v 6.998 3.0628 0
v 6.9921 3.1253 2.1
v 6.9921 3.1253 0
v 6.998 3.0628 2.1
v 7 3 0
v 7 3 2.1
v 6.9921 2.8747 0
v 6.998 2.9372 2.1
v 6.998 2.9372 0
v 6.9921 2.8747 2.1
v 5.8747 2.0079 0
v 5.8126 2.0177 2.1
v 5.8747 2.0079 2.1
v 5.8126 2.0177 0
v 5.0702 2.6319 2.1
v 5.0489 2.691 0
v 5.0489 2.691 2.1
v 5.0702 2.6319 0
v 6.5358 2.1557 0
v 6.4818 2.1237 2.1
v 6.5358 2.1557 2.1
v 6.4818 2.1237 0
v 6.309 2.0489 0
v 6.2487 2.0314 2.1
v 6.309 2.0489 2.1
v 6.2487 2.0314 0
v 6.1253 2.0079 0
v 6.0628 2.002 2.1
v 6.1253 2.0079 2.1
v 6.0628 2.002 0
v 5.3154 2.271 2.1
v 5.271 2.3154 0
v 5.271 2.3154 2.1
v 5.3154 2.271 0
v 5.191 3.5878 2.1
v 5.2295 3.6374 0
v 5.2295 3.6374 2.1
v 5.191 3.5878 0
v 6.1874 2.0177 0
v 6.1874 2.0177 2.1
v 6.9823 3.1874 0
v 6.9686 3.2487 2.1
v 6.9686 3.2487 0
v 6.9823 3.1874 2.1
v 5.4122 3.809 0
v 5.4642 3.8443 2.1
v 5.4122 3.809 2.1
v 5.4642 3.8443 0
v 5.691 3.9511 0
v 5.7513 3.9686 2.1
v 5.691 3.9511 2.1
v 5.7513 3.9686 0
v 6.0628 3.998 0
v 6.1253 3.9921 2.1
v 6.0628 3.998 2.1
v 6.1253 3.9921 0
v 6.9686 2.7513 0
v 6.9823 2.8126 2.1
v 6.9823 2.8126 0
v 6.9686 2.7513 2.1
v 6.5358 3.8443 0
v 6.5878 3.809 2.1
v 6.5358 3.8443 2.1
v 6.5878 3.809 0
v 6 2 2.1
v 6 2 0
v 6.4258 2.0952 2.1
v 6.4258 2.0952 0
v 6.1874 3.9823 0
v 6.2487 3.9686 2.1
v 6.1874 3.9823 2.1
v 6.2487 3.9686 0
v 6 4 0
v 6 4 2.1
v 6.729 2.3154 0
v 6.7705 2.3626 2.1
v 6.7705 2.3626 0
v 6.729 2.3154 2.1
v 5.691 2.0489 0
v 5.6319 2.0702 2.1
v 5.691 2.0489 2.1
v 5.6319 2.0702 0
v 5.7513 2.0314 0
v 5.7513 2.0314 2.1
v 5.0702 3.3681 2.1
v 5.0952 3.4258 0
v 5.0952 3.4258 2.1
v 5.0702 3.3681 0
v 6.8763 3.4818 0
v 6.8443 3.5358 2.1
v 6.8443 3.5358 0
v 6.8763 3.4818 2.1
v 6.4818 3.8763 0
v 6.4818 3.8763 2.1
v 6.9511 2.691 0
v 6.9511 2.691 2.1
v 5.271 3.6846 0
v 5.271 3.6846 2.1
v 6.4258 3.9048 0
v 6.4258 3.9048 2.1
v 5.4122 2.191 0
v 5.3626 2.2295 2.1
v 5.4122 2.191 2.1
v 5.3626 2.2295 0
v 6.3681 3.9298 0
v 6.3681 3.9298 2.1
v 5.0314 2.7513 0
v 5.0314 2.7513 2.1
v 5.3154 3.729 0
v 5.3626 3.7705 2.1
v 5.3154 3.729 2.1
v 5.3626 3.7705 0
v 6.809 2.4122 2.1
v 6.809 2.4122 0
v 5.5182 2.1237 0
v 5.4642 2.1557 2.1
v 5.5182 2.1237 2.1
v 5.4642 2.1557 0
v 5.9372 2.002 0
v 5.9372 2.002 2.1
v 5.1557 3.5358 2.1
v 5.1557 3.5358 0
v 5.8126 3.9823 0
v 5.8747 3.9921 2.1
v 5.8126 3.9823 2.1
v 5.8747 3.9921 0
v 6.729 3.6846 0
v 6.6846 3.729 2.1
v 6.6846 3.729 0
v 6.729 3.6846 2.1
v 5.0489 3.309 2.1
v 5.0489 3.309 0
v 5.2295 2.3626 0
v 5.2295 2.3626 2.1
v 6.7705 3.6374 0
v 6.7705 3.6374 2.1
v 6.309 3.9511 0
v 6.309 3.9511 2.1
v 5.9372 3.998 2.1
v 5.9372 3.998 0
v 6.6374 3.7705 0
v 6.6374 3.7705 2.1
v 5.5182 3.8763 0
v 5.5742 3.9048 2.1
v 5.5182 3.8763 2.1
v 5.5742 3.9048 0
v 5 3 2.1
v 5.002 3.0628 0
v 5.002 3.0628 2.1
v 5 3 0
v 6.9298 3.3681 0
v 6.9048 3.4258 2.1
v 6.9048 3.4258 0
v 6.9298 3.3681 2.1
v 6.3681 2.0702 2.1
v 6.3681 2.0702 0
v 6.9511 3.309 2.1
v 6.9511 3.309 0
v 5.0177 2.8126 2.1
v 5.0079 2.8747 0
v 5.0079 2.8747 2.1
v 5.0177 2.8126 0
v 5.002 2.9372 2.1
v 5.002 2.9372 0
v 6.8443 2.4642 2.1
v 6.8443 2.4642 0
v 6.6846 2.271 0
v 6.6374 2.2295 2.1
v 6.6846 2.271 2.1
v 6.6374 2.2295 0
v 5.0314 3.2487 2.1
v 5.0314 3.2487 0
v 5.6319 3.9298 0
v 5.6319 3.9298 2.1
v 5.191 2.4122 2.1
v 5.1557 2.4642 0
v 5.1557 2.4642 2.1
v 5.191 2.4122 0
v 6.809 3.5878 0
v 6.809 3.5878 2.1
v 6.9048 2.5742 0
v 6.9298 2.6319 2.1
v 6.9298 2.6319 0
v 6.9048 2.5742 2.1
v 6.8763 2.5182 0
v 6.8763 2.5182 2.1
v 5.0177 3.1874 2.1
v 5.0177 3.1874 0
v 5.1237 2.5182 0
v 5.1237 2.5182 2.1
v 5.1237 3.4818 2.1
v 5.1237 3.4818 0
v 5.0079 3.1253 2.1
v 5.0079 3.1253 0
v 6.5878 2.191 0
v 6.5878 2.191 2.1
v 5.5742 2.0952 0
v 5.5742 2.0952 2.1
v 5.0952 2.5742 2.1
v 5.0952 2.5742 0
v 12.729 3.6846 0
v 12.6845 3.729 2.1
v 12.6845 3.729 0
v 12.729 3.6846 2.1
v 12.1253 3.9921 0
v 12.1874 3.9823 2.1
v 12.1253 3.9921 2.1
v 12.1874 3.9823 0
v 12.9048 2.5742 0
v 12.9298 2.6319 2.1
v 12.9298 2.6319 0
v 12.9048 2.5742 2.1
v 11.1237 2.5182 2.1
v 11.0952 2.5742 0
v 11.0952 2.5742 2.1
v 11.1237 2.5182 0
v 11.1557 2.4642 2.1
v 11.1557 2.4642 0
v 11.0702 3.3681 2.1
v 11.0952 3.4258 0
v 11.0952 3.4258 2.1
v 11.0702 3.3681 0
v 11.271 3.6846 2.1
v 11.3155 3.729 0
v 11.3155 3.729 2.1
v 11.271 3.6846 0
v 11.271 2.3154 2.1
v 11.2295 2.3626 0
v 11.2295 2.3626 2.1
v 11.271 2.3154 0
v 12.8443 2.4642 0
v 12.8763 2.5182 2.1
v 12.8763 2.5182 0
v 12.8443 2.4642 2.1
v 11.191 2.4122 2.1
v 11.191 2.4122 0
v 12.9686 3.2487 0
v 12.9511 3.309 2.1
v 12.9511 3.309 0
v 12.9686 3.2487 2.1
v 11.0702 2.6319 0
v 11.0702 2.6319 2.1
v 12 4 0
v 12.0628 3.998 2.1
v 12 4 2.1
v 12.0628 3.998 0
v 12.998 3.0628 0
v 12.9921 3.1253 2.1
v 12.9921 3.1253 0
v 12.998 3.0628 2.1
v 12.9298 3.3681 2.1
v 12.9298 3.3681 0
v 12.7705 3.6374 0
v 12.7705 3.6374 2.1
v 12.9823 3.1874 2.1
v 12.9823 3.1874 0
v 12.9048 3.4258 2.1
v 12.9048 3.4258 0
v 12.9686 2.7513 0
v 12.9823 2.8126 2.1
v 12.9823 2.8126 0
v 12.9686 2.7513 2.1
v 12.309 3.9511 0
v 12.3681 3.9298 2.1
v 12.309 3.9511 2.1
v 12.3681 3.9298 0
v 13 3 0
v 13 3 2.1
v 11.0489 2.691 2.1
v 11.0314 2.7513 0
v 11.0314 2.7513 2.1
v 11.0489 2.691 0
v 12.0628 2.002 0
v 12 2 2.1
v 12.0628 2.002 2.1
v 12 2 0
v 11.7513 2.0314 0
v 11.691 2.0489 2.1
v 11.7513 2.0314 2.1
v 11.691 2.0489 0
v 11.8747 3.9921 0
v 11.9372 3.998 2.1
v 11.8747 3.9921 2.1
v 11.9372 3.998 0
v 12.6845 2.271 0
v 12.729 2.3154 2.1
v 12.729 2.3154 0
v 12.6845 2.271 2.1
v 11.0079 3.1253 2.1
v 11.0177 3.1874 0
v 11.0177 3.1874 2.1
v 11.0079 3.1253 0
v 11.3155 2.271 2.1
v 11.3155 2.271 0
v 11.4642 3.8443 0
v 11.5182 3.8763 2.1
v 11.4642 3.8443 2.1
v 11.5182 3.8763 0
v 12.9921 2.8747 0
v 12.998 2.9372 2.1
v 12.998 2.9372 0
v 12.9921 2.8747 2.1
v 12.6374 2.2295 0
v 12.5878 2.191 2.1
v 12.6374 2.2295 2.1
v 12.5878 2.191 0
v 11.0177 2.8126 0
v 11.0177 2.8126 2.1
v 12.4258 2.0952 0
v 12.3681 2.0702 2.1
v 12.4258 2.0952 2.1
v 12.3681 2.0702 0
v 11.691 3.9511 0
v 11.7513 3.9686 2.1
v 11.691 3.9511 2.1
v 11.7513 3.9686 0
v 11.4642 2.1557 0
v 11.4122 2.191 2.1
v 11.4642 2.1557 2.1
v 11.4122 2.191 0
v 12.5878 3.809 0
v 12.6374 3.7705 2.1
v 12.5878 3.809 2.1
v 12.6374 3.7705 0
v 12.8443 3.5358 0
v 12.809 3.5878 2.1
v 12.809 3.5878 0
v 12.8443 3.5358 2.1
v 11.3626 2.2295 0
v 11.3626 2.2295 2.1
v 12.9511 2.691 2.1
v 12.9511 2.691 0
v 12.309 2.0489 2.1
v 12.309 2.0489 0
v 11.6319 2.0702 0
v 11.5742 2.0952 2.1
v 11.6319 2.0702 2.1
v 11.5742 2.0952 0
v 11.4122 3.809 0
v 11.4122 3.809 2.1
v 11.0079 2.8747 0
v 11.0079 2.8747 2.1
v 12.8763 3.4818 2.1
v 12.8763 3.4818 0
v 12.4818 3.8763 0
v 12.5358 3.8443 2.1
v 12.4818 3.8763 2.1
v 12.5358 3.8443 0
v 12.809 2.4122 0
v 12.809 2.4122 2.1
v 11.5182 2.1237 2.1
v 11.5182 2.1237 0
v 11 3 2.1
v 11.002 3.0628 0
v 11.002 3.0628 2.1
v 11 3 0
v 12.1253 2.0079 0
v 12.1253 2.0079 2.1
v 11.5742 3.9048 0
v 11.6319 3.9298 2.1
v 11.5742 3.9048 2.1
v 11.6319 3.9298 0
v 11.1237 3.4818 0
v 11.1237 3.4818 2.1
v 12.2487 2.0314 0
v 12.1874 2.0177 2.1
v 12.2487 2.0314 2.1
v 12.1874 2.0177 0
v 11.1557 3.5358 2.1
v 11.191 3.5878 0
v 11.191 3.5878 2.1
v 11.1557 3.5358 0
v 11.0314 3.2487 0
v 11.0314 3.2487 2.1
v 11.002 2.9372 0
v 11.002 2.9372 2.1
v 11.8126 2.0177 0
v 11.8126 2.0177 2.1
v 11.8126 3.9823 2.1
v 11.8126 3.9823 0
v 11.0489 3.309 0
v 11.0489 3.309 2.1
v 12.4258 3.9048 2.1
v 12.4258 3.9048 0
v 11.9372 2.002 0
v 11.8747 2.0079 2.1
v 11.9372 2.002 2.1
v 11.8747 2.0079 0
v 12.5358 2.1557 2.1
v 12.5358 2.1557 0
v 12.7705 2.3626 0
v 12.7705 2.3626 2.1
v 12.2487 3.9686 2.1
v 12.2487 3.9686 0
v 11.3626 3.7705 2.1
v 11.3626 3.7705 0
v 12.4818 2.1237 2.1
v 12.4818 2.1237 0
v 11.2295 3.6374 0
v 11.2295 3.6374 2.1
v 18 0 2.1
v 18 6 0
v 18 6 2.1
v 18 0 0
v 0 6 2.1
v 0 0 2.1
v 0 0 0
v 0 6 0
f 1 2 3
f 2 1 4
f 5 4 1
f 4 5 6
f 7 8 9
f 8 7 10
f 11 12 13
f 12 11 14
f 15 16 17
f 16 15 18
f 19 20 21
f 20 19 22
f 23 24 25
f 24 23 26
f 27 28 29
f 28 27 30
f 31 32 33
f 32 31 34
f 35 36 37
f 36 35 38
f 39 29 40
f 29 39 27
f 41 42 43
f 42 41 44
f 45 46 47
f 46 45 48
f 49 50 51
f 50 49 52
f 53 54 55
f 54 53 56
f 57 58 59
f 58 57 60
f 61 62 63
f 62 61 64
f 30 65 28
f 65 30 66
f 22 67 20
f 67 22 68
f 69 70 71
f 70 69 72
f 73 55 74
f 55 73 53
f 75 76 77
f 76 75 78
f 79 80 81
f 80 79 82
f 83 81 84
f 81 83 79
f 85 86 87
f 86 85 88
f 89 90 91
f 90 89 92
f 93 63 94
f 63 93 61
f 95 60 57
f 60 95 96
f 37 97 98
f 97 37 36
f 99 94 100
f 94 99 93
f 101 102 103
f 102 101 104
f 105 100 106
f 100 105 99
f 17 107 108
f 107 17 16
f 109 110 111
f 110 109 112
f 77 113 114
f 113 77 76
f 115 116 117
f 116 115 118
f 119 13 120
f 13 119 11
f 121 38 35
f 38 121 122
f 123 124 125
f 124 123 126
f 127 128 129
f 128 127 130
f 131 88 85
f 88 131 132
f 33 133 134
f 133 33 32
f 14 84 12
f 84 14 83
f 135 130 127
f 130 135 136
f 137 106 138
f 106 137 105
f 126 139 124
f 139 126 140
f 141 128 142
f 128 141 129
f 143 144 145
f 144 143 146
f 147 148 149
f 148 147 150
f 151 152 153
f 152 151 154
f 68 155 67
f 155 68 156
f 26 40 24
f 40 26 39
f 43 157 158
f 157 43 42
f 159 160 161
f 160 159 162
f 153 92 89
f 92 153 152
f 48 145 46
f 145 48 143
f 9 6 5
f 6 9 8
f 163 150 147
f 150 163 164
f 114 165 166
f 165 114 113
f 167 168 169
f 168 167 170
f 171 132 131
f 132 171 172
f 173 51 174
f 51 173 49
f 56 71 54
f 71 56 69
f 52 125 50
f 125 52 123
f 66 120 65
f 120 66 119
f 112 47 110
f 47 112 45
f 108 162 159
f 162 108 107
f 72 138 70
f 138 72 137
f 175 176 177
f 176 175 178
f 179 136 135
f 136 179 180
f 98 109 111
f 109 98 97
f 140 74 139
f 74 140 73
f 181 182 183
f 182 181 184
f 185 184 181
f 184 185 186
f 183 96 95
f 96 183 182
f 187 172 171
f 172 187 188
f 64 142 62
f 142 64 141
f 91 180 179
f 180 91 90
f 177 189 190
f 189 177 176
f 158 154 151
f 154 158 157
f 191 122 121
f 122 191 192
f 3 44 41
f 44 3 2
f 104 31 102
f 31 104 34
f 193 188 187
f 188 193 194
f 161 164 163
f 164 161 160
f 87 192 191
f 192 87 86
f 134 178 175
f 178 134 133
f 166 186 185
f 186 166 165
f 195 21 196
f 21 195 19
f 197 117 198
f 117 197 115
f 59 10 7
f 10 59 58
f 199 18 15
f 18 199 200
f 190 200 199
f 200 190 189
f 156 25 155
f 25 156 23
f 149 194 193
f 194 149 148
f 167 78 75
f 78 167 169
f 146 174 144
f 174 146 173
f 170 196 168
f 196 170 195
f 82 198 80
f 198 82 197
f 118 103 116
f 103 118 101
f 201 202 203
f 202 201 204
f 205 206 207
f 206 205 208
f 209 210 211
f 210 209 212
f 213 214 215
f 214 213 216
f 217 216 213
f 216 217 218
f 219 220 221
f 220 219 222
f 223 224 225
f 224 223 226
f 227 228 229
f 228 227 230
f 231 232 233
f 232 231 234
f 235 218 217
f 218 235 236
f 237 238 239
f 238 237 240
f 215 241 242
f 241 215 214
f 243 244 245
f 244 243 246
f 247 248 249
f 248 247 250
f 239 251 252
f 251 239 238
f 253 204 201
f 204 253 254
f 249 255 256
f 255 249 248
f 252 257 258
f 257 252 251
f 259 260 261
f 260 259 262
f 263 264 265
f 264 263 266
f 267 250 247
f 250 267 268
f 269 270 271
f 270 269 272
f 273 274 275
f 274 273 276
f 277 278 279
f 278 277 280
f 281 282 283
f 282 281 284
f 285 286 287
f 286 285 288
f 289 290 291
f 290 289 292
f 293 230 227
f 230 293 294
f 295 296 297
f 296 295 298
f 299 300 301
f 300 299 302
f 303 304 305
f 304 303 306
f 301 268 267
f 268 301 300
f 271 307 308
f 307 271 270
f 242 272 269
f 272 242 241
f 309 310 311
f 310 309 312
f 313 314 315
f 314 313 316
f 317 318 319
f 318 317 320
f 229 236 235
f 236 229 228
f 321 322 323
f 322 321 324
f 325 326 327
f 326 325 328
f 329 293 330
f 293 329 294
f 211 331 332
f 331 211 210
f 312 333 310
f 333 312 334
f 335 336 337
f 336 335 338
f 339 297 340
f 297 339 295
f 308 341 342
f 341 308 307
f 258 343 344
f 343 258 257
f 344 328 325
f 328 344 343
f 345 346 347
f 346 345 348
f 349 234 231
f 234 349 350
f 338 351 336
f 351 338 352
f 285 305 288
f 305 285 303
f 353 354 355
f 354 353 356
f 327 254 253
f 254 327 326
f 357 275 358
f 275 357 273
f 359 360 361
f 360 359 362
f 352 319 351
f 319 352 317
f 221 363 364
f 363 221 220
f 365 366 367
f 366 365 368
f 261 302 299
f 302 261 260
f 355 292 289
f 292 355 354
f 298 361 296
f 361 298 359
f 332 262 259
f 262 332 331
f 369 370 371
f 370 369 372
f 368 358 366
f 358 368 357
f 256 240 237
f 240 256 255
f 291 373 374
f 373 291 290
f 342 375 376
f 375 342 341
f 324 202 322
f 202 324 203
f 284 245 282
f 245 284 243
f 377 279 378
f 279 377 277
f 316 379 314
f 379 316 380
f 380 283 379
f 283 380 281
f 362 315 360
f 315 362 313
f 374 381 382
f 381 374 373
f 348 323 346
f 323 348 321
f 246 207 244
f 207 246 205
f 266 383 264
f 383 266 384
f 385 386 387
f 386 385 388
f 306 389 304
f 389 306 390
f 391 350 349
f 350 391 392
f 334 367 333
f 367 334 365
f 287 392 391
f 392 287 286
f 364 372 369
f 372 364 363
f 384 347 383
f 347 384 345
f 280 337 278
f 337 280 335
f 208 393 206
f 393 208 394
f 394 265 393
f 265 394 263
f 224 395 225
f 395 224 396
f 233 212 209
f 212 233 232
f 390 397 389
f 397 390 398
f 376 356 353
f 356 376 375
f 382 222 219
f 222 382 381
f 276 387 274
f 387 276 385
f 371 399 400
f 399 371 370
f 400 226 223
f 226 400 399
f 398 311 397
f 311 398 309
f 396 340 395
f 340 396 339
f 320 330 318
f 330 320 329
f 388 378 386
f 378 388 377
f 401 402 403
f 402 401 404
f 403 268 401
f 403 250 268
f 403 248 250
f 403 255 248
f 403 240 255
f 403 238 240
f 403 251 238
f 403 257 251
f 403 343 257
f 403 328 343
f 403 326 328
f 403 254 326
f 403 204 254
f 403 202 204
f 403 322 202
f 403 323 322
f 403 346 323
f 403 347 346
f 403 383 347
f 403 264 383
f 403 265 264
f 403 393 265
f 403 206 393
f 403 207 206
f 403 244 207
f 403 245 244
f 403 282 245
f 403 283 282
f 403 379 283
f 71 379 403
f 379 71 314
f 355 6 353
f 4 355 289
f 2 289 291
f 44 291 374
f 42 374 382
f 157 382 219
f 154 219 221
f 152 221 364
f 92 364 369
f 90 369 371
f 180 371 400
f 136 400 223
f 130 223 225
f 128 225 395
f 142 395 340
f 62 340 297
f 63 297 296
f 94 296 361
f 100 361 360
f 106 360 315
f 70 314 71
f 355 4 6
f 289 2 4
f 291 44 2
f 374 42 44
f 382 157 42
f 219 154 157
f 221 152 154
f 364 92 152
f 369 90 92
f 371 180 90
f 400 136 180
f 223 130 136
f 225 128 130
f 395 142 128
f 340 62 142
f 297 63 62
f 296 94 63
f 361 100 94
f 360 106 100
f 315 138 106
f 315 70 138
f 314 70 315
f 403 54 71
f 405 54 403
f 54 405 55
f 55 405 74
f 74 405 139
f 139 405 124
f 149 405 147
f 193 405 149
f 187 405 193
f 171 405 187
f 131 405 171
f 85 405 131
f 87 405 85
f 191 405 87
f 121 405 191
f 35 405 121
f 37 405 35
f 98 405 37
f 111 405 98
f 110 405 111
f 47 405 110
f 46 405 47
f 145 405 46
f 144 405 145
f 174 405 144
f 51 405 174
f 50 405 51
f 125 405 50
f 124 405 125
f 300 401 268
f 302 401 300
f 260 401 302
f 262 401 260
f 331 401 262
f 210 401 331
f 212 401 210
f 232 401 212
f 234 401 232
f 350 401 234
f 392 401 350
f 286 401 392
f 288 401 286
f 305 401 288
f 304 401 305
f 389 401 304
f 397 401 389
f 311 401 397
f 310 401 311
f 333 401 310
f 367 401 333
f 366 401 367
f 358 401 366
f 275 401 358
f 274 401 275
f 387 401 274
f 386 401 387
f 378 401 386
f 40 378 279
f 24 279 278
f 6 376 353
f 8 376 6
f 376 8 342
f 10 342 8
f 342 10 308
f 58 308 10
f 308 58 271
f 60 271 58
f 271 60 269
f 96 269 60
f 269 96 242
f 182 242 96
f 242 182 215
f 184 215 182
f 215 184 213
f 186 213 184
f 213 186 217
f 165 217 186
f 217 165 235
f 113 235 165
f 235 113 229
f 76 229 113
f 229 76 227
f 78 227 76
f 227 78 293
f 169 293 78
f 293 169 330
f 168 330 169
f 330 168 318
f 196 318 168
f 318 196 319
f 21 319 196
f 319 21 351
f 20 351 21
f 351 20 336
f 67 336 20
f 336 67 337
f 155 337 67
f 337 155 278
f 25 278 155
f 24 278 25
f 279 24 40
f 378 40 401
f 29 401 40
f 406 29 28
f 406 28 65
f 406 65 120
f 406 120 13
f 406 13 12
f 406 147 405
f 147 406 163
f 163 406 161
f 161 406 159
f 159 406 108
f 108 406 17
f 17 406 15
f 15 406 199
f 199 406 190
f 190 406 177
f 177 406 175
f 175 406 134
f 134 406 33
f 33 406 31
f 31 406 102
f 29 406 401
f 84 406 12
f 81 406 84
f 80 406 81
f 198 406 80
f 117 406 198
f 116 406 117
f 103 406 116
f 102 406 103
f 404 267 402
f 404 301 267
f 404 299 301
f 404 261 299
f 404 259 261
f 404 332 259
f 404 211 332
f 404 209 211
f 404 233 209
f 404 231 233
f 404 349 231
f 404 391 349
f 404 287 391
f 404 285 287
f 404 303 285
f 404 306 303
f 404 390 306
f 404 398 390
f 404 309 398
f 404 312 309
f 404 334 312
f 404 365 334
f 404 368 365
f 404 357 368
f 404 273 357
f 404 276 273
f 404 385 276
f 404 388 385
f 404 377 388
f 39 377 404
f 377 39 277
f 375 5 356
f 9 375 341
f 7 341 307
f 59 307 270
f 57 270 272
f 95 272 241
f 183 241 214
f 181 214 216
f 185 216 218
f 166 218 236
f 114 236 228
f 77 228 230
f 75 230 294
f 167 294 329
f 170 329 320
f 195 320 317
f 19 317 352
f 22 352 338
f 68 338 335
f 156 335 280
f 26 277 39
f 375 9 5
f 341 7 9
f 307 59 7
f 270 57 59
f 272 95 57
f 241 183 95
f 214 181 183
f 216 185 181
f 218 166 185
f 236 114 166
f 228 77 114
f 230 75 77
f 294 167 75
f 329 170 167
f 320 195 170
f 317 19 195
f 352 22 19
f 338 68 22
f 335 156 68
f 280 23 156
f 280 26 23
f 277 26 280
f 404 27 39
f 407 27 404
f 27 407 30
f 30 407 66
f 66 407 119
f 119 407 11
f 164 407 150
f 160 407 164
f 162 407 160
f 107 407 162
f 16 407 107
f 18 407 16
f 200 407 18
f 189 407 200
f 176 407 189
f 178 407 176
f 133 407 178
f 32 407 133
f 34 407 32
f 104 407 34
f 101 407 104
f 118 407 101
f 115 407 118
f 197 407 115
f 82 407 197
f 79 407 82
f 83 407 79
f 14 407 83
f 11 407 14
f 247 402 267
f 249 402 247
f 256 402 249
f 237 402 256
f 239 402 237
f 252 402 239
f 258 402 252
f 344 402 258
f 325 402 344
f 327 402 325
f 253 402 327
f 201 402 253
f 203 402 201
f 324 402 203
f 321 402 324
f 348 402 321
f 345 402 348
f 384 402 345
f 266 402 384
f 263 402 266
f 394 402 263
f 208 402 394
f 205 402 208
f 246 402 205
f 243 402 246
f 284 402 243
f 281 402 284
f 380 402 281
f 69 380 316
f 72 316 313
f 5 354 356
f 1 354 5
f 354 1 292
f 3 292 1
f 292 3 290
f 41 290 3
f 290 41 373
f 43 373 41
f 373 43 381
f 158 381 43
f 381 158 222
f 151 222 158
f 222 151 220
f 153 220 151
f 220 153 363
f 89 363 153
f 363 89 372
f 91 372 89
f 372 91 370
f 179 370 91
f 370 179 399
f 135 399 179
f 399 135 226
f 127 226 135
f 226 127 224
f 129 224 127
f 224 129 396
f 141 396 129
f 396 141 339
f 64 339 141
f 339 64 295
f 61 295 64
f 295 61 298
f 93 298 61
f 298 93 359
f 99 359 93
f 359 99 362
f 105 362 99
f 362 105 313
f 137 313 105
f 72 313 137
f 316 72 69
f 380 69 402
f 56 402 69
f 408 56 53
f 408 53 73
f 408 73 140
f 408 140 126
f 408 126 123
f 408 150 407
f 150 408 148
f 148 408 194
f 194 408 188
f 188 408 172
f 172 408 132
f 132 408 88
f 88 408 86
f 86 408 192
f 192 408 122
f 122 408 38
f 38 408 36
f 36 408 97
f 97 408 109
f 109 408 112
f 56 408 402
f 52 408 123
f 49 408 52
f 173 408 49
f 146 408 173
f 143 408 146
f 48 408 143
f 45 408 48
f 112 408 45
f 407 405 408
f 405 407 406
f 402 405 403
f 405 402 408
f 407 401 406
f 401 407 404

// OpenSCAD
$fn=100;
tab_height=.3;
tab2bottom=2.4;

plus=.1; // this is to make parts larger than the hole they are to make
plusH=plus/2;

hole_d=2;
tab1_hole_spacing=8;
tab2_hole_spacing=6;
shim_height=tab2bottom-tab_height;
shim_depth=6;
shim_width=18;

module tab1(spacing){
    difference(){
        cube([shim_width,shim_depth,shim_height]);
        translate([shim_width/2-spacing/2,(shim_depth/2),-plusH])
            union() {
                cylinder(h=shim_height+plus,d=hole_d);
                translate([spacing,0,0]) cylinder(h=shim_height+plus,d=hole_d);
            }
    }
}

//for the bottom tabs
//tab1(tab1_hole_spacing);

//for the top tabs
tab1(tab2_hole_spacing);
